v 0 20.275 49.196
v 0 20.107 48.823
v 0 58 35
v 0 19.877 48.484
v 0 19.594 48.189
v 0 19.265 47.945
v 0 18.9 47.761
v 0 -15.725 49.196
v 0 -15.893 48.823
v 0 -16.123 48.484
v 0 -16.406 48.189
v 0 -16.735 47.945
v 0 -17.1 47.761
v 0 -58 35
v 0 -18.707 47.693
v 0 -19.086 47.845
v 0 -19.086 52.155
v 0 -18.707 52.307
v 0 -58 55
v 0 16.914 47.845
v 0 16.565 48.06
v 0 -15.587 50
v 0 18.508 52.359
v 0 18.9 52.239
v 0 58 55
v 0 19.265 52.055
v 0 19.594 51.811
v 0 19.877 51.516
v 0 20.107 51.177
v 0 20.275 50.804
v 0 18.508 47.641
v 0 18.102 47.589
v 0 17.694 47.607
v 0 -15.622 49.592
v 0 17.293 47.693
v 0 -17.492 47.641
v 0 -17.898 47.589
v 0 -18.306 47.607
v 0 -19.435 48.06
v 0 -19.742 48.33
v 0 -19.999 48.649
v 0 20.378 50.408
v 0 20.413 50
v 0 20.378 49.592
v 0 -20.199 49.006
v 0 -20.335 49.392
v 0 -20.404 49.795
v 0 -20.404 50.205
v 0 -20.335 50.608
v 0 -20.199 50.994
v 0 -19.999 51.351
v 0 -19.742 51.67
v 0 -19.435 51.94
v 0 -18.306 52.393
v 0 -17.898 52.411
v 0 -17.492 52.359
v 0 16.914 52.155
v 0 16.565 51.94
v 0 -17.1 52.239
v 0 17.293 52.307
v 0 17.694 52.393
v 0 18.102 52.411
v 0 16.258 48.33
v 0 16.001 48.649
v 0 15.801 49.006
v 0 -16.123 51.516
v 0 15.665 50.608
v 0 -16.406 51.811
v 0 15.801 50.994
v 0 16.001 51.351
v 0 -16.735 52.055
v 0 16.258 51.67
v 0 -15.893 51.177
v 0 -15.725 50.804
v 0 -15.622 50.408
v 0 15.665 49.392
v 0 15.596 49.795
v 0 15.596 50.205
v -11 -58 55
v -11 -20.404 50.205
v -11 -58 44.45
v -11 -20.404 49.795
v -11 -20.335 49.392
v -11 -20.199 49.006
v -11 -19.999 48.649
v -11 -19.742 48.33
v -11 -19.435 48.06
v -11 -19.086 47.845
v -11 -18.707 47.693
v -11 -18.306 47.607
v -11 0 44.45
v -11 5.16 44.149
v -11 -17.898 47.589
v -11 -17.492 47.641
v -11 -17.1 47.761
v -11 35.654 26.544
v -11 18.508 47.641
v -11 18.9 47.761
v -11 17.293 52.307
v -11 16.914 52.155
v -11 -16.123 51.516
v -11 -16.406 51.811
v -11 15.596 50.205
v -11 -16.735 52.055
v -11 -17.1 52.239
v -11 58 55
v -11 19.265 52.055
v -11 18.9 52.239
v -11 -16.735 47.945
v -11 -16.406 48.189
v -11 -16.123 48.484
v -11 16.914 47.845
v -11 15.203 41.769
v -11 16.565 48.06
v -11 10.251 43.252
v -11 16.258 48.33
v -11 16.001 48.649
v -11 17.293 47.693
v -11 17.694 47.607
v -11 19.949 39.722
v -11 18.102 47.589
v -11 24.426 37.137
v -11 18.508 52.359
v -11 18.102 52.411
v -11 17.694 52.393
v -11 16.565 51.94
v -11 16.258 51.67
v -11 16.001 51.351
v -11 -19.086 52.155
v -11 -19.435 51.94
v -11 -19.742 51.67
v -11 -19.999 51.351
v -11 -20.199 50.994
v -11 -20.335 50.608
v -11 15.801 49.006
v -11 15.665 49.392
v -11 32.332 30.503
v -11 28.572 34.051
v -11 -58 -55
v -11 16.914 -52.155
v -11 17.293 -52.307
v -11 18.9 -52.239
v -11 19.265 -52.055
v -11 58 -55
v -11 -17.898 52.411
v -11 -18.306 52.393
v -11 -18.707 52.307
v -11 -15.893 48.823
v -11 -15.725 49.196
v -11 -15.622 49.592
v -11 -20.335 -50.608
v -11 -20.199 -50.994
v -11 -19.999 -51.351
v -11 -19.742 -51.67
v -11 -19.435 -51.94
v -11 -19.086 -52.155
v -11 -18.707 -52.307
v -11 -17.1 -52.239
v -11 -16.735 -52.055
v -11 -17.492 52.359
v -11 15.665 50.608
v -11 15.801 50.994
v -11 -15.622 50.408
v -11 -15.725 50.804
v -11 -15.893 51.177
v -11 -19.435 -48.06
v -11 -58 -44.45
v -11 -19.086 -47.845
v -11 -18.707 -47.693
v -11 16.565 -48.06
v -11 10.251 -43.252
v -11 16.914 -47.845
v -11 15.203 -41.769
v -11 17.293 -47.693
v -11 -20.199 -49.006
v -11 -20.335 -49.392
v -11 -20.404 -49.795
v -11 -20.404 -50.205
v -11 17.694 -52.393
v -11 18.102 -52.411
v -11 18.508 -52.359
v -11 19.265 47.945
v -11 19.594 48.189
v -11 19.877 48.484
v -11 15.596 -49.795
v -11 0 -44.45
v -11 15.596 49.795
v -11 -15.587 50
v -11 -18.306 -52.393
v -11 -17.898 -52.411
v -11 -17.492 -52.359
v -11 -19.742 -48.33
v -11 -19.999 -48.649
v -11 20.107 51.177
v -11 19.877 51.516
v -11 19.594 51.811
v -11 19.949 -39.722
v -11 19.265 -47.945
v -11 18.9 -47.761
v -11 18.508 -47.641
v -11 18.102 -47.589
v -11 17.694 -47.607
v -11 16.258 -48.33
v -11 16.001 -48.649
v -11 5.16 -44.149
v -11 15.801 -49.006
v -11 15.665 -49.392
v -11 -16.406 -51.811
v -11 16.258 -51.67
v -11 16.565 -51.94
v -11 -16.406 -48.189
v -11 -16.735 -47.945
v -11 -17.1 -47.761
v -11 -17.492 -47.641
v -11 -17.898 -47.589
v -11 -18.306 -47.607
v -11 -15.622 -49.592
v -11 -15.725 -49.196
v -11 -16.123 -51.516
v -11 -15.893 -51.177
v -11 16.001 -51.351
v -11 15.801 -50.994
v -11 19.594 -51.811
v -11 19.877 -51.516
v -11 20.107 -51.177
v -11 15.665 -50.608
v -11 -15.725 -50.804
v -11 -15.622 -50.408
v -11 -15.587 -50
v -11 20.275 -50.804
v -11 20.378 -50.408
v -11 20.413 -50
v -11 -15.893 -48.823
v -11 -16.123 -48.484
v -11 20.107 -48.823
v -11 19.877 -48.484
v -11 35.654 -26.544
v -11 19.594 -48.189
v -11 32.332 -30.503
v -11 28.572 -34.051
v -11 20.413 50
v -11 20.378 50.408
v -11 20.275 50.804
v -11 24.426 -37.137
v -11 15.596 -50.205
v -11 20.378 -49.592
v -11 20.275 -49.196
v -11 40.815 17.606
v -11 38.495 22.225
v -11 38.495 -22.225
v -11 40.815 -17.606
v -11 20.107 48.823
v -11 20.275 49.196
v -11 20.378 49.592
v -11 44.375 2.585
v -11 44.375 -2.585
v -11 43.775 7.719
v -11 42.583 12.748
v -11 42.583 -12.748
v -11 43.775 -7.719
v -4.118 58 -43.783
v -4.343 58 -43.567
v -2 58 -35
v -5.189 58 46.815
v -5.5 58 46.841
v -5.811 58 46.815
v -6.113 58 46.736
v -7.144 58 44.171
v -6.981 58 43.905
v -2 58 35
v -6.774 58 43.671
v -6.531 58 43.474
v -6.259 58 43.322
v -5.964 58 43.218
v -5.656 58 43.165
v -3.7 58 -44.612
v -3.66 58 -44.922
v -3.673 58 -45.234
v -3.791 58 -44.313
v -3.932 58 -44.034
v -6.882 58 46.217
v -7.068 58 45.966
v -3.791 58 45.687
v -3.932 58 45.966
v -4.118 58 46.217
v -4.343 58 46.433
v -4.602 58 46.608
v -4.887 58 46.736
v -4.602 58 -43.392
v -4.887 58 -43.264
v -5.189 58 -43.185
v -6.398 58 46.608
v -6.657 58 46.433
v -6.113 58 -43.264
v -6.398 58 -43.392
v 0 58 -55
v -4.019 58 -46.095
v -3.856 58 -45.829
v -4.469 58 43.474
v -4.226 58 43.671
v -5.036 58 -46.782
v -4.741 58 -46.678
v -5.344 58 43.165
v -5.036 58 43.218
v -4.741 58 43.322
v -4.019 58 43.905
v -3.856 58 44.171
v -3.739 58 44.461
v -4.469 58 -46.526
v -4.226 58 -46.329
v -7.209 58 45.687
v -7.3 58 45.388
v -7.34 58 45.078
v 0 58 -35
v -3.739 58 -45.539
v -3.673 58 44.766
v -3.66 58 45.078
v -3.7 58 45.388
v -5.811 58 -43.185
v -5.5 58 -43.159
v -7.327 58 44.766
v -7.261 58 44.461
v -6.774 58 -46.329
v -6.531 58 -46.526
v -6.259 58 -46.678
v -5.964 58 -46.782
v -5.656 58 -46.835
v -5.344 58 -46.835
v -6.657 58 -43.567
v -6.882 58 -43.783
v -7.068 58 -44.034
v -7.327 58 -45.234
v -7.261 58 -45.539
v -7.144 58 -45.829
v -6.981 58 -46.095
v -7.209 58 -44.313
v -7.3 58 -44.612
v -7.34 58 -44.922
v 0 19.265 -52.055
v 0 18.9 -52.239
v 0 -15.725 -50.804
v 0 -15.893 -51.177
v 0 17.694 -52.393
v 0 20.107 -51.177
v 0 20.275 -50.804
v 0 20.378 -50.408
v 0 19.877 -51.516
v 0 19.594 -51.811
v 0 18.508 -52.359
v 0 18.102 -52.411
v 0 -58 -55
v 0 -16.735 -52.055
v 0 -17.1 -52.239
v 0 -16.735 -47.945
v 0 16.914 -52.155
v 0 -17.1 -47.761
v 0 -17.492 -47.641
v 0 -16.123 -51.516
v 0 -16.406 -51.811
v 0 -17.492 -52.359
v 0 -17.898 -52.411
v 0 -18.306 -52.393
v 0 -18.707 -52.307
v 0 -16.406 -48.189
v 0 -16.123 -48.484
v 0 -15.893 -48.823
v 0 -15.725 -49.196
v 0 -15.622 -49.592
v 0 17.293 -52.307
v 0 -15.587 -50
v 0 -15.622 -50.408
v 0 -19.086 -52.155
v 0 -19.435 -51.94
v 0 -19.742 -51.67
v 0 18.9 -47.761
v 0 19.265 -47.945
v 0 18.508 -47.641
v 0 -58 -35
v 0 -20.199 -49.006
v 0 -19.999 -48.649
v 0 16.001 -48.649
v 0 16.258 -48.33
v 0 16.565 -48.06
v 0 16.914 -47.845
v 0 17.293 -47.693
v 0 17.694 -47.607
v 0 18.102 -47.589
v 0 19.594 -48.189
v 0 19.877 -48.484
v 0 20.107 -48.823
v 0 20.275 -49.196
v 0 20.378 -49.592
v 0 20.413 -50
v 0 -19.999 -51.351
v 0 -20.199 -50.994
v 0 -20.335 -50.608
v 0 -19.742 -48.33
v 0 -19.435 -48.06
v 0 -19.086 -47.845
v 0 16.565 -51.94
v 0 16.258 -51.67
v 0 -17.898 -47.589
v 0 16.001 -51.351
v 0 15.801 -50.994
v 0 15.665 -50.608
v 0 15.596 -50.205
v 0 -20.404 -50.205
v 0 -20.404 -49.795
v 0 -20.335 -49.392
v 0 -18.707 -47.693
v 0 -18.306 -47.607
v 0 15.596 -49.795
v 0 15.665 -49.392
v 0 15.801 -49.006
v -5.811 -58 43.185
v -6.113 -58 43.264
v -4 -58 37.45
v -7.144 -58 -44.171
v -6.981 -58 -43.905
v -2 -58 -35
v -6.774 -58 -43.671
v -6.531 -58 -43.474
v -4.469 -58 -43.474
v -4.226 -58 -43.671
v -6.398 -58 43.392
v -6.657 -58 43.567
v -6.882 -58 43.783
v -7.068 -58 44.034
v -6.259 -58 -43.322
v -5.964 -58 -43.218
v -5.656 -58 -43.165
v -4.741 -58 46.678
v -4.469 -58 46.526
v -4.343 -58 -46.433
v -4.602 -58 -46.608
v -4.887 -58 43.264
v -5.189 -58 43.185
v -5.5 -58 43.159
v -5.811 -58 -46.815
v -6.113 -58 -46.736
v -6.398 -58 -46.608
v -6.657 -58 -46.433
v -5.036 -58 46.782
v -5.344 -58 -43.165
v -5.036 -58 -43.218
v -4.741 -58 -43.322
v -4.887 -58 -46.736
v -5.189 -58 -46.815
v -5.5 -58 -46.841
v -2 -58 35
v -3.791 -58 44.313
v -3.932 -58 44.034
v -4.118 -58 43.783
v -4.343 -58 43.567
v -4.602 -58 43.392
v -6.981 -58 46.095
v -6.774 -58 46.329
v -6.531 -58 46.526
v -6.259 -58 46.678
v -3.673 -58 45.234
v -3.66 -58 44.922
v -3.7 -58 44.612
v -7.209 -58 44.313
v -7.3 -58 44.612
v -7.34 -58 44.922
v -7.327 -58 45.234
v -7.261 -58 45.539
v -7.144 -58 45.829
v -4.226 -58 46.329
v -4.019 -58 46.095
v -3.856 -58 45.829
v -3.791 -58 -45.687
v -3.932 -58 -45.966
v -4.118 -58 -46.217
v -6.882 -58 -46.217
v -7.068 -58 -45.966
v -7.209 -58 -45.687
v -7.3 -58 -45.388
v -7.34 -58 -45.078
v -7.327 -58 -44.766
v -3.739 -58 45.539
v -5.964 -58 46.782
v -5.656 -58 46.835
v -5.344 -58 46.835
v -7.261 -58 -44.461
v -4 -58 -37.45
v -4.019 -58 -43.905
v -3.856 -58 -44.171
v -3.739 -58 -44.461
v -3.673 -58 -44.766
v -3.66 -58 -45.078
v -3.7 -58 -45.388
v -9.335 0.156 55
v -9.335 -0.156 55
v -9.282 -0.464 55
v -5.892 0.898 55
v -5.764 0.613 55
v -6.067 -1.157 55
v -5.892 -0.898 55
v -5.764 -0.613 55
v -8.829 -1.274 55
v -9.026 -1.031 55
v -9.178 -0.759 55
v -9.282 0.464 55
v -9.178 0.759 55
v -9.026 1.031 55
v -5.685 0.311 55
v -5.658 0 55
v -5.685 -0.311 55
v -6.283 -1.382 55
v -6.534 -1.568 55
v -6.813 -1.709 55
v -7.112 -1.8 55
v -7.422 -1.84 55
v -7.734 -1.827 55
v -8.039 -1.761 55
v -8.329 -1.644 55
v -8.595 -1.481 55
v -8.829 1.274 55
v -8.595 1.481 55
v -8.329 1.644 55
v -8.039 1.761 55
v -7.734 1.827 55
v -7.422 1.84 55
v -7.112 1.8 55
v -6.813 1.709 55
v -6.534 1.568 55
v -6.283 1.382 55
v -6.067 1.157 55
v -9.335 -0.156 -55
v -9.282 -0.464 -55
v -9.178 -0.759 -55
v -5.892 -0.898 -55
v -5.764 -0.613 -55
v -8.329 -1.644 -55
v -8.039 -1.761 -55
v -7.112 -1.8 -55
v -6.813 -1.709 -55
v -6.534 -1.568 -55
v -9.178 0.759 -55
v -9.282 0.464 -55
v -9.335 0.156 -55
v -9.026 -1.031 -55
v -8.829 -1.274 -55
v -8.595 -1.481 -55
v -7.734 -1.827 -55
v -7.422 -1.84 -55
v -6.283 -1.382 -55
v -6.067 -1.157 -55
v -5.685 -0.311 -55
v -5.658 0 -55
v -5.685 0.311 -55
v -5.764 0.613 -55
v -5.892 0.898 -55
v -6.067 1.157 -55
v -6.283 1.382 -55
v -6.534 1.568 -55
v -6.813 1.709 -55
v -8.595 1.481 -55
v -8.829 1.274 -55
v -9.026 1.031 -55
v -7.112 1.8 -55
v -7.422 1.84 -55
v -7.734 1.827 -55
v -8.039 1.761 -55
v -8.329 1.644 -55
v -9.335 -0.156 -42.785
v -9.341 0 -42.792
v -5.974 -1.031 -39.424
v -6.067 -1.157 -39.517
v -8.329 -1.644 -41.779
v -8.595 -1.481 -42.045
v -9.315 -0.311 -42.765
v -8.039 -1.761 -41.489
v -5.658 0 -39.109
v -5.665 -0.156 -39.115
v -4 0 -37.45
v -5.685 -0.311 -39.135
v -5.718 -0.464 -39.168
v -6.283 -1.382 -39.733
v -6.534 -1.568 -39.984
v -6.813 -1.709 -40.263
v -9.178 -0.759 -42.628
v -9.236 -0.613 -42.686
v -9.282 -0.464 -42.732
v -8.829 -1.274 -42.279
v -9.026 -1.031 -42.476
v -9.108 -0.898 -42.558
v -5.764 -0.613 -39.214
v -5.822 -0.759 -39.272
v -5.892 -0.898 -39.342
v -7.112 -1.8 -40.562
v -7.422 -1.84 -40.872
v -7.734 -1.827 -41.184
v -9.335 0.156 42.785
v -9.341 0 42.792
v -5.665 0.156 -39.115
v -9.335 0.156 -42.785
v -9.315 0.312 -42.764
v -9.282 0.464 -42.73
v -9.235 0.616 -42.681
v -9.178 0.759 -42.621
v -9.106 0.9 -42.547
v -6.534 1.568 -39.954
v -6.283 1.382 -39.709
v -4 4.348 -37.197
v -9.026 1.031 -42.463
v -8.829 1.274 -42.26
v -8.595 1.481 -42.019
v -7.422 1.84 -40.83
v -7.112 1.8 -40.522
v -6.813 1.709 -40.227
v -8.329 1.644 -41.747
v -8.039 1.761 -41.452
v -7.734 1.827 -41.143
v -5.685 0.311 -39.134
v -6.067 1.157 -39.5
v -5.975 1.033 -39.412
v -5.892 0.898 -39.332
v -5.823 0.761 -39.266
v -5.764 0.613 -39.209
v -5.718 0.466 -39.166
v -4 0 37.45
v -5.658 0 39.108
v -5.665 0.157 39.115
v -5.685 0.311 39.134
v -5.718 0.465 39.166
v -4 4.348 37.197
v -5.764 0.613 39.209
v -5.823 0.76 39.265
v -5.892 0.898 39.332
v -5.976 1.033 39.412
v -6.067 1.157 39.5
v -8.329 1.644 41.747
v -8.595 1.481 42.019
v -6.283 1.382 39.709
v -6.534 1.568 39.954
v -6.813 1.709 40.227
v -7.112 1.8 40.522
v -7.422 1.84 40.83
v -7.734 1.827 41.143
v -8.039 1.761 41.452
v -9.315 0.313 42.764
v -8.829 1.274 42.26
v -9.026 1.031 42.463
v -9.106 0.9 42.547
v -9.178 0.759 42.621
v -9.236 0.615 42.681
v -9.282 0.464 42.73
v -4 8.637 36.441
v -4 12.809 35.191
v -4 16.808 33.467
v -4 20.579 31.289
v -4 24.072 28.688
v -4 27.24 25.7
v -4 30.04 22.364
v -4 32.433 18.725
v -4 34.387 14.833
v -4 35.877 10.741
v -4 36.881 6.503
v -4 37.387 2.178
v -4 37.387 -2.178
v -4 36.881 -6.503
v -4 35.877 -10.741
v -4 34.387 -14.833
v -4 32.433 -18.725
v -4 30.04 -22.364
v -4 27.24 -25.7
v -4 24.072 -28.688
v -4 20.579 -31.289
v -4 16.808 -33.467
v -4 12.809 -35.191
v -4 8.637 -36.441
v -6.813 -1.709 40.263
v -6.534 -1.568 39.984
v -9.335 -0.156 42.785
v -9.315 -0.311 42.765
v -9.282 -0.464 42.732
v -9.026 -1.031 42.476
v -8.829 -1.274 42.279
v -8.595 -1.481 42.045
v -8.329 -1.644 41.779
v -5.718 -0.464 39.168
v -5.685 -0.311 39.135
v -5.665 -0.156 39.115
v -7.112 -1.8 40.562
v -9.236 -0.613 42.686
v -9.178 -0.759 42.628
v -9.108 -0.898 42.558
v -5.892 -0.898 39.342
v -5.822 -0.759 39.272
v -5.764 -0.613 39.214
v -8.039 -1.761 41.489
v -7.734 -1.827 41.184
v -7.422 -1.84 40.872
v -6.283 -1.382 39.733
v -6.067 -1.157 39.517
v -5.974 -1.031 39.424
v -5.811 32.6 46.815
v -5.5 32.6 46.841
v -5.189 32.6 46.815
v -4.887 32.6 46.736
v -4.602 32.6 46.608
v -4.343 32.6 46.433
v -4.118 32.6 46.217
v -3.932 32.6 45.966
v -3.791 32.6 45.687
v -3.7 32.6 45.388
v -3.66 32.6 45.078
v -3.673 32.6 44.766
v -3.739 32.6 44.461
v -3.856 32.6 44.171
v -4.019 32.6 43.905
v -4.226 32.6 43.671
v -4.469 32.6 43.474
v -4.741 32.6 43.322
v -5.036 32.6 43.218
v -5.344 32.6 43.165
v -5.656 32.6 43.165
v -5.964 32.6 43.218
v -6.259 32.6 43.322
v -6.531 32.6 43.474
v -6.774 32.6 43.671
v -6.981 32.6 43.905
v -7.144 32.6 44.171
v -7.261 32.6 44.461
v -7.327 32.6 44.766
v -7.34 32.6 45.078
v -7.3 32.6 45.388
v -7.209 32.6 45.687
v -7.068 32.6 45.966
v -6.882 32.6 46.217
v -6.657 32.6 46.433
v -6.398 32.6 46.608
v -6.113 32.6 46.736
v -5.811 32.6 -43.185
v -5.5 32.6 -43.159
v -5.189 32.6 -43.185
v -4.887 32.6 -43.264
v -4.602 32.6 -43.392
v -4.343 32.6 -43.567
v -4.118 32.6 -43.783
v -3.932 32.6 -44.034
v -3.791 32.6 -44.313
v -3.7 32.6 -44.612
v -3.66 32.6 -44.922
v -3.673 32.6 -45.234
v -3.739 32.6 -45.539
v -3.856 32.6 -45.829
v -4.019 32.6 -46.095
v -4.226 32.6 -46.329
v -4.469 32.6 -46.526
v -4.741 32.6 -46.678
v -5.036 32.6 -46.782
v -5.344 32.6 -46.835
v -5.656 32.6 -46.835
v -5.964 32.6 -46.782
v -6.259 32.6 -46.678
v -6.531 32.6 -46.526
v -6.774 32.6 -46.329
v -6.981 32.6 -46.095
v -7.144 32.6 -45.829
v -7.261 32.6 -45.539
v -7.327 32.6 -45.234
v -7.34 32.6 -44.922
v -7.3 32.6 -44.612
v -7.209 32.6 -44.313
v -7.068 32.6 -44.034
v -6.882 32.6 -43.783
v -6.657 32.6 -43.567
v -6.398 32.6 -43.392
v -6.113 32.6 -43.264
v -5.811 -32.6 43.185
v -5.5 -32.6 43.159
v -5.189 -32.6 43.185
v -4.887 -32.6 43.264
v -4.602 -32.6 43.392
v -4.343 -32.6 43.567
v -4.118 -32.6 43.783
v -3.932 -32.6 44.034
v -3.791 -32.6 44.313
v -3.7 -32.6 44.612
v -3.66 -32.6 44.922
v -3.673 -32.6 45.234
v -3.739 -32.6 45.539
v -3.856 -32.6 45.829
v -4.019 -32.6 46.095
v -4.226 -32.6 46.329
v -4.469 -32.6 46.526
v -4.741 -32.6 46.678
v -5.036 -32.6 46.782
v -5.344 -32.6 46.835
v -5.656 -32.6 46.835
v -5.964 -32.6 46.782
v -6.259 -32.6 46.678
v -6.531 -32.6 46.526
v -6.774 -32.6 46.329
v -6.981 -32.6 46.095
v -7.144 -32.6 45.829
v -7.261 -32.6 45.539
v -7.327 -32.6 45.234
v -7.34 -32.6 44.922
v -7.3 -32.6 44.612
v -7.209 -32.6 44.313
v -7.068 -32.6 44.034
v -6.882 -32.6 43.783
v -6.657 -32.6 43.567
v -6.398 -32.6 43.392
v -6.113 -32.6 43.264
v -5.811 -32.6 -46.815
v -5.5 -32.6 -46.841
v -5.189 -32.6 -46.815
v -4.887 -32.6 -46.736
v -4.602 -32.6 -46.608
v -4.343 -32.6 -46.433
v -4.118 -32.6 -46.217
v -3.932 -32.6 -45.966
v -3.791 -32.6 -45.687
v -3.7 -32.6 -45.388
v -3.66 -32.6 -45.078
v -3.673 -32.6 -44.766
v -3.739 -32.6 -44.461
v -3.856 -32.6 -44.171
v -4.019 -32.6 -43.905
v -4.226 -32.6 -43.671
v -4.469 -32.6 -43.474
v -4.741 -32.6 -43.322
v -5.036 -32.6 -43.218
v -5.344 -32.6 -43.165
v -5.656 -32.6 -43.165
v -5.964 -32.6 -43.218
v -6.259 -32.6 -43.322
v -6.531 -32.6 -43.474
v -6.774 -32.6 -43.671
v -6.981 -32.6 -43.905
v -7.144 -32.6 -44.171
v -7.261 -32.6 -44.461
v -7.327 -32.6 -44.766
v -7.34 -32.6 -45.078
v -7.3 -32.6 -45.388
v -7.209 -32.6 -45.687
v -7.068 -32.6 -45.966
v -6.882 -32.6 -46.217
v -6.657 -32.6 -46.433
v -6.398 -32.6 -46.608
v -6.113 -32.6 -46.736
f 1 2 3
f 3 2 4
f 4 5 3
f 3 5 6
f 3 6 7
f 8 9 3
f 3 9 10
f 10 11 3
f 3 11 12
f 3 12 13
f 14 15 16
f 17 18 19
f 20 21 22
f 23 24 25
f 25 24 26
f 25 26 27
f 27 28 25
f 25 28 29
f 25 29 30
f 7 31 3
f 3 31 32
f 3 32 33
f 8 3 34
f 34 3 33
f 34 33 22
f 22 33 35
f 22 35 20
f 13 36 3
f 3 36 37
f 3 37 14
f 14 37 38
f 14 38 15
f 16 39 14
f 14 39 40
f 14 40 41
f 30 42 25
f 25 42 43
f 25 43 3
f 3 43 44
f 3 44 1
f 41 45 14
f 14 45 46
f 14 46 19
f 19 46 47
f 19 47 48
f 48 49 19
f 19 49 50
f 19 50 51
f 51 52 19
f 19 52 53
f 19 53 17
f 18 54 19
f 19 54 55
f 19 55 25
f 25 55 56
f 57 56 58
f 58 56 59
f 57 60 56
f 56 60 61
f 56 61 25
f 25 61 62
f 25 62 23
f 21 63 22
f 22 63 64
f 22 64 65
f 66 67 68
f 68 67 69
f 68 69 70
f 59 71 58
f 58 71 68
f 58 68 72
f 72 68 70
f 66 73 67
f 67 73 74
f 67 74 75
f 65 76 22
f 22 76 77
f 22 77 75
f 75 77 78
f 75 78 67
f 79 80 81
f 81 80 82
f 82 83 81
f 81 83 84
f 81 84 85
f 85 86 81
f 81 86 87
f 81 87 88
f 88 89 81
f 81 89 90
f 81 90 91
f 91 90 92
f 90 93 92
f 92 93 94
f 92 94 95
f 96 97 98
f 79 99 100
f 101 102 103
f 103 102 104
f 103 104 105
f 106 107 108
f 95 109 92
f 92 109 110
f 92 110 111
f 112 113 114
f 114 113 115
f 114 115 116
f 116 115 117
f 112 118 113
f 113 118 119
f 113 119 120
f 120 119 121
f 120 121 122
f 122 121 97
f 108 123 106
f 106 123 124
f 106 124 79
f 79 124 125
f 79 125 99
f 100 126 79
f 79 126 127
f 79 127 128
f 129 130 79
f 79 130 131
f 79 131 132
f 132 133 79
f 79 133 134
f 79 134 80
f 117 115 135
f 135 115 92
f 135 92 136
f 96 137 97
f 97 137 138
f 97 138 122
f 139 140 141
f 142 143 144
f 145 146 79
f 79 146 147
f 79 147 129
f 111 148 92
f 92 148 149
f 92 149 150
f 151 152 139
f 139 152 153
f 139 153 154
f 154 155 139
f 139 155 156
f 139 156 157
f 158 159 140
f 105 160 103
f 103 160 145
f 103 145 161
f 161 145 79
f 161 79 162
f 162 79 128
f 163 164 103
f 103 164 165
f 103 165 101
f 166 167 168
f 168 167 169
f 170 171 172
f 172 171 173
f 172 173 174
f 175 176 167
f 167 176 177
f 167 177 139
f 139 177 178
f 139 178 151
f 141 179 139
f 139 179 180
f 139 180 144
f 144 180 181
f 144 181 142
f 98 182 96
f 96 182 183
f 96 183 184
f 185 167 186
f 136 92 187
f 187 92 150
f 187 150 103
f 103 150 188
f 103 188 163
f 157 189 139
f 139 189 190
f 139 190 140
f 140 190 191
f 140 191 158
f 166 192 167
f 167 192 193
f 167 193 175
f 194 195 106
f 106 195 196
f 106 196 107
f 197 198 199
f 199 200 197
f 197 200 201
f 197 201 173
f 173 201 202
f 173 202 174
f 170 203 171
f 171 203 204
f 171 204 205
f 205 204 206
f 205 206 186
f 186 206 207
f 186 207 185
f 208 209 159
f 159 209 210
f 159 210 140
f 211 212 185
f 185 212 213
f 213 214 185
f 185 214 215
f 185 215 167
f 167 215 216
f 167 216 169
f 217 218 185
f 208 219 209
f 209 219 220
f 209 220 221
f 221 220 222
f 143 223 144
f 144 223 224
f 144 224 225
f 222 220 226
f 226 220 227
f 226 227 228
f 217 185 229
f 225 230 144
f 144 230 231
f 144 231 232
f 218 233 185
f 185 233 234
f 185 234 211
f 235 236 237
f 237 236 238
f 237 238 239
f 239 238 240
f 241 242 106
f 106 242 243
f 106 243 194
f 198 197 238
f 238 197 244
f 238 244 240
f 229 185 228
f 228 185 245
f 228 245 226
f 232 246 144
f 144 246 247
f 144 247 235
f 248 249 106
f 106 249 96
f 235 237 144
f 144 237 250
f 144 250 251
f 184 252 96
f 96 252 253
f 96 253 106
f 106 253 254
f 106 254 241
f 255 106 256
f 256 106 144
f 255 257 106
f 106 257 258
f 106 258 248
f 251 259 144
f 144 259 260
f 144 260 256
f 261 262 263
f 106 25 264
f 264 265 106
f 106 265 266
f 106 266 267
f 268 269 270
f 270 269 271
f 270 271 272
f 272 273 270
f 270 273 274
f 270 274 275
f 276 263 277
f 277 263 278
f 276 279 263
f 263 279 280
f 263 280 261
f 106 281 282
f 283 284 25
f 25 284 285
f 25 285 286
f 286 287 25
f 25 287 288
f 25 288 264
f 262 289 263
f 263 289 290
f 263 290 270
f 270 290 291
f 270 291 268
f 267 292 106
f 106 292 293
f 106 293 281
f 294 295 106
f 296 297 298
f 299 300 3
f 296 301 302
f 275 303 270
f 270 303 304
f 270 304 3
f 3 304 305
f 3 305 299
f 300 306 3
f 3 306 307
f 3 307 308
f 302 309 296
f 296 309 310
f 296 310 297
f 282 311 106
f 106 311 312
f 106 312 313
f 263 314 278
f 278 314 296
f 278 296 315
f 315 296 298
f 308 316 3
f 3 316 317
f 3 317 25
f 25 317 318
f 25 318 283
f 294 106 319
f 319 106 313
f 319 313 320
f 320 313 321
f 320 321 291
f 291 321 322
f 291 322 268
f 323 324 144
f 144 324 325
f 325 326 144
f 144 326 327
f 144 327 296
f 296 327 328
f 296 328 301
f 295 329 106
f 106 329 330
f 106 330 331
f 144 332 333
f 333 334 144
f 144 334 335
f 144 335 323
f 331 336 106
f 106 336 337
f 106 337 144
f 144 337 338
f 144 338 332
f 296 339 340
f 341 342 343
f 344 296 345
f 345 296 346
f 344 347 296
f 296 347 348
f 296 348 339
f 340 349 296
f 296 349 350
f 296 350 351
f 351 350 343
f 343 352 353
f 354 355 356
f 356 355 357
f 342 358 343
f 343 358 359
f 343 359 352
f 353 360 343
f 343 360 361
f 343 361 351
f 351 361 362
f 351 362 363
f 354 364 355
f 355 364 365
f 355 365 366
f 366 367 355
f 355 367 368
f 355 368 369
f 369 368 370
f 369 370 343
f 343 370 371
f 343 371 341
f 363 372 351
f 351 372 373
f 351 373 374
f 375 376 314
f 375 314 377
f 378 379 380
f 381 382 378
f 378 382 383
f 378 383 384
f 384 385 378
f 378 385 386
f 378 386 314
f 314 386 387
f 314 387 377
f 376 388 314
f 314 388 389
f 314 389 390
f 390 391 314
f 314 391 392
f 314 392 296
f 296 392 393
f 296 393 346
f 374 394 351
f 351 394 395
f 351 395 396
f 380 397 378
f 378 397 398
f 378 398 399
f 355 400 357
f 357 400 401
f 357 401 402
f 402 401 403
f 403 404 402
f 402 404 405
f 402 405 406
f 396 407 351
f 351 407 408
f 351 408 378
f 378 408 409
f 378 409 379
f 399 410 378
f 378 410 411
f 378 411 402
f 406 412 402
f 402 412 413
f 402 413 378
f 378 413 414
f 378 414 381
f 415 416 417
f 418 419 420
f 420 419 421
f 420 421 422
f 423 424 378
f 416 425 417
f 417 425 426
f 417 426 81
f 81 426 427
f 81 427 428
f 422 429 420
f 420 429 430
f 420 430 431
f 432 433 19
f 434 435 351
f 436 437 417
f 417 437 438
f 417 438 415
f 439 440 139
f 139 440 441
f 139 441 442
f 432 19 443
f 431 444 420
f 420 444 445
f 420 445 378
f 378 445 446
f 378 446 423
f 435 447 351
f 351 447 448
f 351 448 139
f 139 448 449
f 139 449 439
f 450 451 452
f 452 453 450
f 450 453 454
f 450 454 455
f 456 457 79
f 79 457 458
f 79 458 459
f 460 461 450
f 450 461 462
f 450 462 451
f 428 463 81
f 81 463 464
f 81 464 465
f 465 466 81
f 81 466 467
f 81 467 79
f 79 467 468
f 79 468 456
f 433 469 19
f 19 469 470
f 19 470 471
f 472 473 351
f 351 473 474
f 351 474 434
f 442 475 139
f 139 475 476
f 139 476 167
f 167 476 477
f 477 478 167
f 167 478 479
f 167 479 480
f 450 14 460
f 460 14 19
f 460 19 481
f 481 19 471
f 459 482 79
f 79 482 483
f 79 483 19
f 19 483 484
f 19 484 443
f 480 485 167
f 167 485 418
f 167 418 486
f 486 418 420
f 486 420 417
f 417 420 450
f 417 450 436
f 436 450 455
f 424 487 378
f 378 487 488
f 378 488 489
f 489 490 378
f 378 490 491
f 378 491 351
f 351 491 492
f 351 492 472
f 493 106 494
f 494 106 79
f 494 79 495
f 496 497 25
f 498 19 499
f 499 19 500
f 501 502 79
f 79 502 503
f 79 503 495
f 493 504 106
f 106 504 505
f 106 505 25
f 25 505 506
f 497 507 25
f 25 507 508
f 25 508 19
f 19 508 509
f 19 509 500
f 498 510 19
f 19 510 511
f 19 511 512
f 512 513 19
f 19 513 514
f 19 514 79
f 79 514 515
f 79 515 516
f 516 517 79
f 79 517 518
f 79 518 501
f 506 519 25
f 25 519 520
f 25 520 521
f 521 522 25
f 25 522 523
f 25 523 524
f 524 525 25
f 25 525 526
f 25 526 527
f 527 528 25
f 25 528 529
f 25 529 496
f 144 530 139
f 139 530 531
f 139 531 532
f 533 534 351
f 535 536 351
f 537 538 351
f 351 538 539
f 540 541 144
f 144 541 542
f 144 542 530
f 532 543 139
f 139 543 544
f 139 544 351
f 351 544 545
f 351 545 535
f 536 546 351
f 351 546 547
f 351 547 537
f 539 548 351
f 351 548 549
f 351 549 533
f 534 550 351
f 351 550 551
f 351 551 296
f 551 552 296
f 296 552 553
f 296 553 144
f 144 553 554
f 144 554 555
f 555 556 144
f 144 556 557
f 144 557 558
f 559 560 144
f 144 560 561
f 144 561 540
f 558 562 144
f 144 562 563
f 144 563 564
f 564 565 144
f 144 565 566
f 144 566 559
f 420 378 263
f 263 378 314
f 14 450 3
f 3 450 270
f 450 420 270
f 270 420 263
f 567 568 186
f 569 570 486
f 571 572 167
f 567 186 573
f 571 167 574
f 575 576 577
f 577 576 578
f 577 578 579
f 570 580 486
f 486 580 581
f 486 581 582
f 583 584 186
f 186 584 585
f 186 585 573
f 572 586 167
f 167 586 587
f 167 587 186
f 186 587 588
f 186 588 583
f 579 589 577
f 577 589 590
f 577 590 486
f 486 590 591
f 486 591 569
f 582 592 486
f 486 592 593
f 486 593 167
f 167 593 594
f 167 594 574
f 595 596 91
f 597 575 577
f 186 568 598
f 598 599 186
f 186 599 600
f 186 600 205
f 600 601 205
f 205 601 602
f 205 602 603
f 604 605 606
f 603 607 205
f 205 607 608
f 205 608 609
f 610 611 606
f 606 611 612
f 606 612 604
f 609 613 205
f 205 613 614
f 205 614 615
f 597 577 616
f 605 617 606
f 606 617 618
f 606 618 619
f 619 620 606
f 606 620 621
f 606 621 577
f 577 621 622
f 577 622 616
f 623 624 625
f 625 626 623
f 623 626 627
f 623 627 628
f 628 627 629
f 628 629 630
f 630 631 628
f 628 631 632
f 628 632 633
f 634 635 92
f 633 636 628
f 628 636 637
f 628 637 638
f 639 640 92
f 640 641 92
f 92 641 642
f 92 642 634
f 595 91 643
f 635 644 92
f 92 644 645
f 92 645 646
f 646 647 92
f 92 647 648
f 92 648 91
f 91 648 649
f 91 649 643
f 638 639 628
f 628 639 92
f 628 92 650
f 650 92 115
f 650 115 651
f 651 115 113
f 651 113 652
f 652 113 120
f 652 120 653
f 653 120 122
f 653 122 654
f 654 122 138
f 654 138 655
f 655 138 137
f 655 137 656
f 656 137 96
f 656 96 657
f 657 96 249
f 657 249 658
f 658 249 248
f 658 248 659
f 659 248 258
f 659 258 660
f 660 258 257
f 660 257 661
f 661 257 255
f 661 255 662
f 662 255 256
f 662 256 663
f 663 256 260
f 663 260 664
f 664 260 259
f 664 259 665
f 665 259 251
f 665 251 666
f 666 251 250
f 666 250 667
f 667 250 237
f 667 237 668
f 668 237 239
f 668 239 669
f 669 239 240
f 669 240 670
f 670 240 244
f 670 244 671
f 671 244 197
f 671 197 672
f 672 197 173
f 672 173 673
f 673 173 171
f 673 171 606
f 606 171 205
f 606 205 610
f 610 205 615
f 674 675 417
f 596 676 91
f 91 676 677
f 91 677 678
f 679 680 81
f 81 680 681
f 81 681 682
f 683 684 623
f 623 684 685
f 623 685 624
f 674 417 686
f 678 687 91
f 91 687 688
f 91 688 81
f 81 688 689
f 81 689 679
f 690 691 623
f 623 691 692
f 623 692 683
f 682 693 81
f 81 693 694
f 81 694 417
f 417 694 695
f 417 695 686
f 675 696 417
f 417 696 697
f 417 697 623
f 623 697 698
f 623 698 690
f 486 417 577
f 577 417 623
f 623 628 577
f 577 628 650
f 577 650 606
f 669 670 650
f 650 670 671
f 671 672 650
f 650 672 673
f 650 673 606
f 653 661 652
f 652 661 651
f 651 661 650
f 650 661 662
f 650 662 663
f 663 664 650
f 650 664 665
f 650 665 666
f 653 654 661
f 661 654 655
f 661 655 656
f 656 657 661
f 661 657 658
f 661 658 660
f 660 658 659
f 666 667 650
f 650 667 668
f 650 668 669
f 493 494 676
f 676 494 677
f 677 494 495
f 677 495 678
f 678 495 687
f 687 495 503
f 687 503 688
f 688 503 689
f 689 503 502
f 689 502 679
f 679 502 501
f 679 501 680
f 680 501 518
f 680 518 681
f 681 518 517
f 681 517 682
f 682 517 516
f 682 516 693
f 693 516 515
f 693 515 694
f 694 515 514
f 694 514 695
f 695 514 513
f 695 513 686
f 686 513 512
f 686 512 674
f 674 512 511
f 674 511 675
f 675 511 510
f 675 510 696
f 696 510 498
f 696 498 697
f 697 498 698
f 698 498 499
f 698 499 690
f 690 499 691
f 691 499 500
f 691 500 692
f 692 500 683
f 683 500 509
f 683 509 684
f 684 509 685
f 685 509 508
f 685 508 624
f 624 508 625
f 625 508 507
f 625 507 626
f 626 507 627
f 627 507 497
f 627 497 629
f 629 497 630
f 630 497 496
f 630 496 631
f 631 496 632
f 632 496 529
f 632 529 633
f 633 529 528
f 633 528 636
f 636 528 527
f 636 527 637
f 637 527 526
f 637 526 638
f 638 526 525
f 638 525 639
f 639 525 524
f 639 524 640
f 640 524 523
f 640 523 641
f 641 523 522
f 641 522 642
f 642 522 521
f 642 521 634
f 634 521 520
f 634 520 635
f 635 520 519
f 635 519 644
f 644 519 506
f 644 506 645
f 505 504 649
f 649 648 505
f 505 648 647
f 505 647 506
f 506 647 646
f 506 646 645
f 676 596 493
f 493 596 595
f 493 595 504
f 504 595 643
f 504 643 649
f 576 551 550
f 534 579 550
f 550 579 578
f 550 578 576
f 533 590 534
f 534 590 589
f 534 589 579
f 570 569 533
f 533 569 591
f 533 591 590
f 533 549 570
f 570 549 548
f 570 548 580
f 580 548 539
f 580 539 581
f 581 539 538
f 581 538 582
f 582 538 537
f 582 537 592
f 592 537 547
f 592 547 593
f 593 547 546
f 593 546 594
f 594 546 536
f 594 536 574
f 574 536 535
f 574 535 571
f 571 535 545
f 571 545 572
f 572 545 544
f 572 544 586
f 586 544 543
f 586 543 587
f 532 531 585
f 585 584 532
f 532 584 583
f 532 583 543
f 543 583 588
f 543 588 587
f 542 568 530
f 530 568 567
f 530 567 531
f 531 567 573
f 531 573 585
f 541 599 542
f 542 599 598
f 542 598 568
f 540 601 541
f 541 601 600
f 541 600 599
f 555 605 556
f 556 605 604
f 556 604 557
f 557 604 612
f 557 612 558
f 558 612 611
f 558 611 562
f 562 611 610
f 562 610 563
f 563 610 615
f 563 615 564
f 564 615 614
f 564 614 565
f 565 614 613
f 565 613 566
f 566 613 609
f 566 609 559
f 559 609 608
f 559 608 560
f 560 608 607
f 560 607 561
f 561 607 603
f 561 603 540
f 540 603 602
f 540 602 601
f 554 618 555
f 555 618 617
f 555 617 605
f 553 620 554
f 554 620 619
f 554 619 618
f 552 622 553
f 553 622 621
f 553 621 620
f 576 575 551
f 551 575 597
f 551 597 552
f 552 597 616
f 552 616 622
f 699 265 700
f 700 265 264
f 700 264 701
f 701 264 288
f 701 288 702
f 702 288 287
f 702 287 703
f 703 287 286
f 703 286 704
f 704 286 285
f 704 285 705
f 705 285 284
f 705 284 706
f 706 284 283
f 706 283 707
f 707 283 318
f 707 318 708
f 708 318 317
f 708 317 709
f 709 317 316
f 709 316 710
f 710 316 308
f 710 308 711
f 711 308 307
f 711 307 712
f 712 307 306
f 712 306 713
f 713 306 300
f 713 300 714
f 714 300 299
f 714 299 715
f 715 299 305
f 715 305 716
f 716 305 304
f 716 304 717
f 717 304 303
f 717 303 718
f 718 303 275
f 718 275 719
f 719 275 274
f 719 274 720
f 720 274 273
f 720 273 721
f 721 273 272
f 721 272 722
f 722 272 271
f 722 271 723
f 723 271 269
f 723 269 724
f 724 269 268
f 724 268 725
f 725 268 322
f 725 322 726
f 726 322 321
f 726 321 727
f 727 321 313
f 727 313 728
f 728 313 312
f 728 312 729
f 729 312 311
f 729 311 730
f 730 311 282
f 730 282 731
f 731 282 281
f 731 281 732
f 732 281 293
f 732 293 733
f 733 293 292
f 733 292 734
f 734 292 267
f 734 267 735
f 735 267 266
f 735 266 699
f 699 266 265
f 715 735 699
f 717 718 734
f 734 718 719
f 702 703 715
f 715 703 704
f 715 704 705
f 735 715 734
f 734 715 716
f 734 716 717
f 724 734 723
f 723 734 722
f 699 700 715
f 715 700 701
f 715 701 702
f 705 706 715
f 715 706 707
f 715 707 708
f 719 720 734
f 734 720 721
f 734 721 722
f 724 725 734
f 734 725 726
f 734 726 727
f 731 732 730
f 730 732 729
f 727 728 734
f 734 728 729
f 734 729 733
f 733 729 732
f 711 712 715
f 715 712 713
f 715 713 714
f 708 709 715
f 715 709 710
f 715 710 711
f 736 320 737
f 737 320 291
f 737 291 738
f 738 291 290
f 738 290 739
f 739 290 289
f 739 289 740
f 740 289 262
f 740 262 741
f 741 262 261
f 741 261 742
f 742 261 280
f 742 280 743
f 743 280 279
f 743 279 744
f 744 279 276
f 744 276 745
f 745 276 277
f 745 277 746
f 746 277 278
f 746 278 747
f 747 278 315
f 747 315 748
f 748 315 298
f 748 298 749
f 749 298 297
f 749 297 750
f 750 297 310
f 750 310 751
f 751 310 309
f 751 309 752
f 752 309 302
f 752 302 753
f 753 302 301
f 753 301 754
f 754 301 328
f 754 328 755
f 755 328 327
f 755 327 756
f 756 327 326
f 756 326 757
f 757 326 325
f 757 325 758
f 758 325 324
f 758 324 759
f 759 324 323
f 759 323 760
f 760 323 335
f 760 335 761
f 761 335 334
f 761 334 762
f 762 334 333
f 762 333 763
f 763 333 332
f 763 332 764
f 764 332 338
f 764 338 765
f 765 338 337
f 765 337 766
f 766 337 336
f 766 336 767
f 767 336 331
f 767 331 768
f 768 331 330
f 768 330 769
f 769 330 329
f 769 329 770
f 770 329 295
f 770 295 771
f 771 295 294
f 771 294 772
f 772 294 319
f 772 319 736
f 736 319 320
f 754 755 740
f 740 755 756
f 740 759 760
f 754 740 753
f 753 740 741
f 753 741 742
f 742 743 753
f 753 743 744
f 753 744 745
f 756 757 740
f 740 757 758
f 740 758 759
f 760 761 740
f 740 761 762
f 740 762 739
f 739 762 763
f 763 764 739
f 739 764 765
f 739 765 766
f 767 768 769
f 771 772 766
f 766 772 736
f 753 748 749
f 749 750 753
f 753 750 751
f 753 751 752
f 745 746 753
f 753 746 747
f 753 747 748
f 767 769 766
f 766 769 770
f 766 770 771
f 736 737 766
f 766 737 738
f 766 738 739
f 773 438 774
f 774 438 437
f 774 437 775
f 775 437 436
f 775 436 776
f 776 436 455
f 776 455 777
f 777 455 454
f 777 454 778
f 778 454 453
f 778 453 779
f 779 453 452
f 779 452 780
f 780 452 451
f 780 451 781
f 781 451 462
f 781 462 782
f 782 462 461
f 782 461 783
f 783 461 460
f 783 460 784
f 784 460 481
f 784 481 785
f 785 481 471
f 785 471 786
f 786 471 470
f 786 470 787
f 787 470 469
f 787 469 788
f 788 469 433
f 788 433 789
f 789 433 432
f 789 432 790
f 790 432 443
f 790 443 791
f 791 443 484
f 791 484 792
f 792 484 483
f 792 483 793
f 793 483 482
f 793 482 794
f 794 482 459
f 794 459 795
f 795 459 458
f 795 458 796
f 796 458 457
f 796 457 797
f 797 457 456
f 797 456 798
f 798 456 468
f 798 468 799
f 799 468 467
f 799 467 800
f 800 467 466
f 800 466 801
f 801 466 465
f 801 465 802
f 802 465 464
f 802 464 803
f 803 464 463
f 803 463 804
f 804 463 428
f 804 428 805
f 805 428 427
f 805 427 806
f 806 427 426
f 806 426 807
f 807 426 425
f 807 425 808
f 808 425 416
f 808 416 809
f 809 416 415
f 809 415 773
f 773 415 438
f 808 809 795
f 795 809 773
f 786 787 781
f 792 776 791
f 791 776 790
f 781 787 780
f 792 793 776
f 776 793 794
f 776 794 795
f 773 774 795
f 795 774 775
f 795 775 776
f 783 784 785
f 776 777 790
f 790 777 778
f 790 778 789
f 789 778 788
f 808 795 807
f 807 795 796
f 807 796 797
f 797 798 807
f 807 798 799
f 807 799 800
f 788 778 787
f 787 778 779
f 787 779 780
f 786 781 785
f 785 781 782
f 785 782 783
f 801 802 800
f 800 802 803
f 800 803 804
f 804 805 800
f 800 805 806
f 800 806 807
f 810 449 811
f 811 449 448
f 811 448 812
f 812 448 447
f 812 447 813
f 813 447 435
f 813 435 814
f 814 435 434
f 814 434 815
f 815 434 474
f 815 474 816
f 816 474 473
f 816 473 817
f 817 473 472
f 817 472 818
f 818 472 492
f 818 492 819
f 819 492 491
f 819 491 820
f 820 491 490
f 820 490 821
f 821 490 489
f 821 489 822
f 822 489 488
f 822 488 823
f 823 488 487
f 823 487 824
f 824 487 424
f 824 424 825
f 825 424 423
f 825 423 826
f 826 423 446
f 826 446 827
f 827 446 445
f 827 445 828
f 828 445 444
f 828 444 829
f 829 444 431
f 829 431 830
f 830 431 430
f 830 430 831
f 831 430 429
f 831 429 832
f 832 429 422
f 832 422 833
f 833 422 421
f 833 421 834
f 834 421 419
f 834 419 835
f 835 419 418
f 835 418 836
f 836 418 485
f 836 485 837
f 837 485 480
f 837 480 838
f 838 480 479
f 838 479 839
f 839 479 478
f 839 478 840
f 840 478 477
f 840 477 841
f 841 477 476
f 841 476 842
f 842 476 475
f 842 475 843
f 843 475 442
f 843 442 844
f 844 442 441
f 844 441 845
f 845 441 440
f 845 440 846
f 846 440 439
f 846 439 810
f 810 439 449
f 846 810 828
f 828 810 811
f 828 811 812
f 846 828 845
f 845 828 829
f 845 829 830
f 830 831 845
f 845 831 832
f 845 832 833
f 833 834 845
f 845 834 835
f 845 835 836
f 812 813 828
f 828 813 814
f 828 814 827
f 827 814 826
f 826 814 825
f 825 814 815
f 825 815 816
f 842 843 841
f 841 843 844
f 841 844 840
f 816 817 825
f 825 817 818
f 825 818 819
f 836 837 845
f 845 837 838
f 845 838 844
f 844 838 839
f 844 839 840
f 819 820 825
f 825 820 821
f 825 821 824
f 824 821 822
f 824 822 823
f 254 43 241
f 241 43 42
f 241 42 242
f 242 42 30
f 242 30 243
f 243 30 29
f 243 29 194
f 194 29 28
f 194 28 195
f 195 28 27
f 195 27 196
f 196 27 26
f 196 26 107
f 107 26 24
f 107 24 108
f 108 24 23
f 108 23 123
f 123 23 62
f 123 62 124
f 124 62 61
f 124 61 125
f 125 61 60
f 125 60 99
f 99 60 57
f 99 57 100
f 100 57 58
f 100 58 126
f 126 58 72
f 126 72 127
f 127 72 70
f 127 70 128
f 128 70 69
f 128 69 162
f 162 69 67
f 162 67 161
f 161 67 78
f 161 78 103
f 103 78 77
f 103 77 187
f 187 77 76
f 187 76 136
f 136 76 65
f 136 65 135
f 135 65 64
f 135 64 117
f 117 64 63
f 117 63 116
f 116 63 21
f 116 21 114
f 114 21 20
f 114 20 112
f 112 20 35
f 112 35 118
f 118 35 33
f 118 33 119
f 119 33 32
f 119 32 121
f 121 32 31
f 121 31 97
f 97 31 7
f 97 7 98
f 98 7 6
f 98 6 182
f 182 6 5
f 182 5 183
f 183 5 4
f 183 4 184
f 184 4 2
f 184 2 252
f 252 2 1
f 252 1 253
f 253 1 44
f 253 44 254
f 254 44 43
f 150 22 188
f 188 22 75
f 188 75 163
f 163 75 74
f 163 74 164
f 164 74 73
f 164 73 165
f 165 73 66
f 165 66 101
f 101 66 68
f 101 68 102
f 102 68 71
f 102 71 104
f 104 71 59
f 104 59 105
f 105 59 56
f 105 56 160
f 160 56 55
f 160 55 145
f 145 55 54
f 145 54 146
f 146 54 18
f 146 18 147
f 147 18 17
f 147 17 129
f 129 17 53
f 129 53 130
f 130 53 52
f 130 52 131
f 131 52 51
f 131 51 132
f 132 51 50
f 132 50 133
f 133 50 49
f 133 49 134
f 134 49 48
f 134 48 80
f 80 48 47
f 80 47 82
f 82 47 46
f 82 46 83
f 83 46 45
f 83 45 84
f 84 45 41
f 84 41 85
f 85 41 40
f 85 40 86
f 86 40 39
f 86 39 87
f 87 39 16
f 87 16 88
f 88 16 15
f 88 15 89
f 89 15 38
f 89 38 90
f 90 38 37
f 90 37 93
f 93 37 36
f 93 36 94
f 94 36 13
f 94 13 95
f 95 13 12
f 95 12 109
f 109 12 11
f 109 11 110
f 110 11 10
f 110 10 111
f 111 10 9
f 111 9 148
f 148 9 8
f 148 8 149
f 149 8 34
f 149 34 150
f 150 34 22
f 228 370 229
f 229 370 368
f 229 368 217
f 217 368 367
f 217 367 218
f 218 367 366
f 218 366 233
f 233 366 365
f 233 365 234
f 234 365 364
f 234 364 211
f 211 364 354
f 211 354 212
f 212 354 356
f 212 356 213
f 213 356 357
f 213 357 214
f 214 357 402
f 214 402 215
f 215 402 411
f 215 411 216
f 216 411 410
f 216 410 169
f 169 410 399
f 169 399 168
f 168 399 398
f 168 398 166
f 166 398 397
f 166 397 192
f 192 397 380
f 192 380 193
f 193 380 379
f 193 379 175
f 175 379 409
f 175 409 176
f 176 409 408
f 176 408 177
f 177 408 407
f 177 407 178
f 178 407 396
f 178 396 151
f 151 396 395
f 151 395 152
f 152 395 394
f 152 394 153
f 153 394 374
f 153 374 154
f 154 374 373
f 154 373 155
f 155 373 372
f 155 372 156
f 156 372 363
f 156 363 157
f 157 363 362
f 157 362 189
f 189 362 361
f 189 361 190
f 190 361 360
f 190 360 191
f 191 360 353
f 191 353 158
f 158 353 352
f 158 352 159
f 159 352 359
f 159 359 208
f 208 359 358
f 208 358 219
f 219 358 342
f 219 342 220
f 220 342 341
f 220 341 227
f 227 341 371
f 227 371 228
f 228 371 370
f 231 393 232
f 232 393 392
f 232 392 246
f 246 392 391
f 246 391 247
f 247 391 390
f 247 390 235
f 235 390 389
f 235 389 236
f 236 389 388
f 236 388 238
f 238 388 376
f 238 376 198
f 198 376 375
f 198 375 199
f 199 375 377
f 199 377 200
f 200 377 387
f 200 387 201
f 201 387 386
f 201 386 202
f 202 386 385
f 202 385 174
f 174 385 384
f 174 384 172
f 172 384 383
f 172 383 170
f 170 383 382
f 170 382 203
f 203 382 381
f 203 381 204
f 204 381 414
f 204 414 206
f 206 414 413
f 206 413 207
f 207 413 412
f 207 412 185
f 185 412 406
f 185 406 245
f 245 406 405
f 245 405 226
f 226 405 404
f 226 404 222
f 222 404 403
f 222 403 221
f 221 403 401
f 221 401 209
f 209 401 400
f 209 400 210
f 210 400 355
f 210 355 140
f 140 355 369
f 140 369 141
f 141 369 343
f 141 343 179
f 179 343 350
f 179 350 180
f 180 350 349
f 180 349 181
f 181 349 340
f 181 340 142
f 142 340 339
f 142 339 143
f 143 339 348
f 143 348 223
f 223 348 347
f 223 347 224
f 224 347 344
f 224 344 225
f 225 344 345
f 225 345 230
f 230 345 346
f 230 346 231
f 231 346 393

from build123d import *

# Parameters (mm, degrees)
SKETCH2_W              = 11
SKETCH2_H              = 116
BOSS_EXTRUDE2_DEPTH    = 109.999999964
SKETCH3_W              = 2
SKETCH3_H              = 70
CUT_EXTRUDE1_DEPTH     = 129.848748531
CUT_EXTRUDE2_DEPTH     = 7
CUT_EXTRUDE2_DRAFT     = -45
CUT_EXTRUDE3_START     = -109.999999964
CUT_EXTRUDE3_OUTLINE_R = 1.8415
CUT_EXTRUDE3_DEPTH     = 109.999999964
SKETCH7_R              = 1.8415
CUT_EXTRUDE4_DEPTH     = 25.4
CUT_EXTRUDE5_START     = -25.4
SKETCH8_R              = 1.8415
CUT_EXTRUDE5_DEPTH     = 25.4
SKETCH9_R              = 2.413
CUT_EXTRUDE6_DEPTH     = 81.684571085


# Read off the part's stored shape, not the designer's step: Cut-Extrude3
with BuildPart() as part:
    # Sketch2 → Boss-Extrude2 (new body)
    with BuildSketch(Plane.XY.offset(54.999999982)):
        with Locations((-5.5, 0)):
            Rectangle(SKETCH2_W, SKETCH2_H)
    extrude(amount=-BOSS_EXTRUDE2_DEPTH)

    # Sketch3 → Cut-Extrude1 (cut, through all)
    with BuildSketch(Plane(origin=(0, 58, 0), x_dir=(1, 0, 0), z_dir=(0, 1, 0))):
        with Locations((-1, 1.8e-08)):
            Rectangle(SKETCH3_W, SKETCH3_H)
    extrude(amount=-CUT_EXTRUDE1_DEPTH, mode=Mode.SUBTRACT)


with BuildPart() as cut_extrude2_tool:
    # Sketch5 → Cut-Extrude2 (with draft: the straight prism first)
    with BuildSketch(Plane.ZY.offset(11)):
        with BuildLine():
            Line((-44.45, 0), (-44.45, -77.05))
            Line((-44.45, -77.05), (44.45, -77.05))
            Line((44.45, -77.05), (44.45, 0))
            ThreePointArc((44.45, 0), (0, 44.45), (-44.45, 0))
        make_face()
    extrude(amount=-CUT_EXTRUDE2_DEPTH)
    # Cut-Extrude2: the draft: its side faces are tilted about the plane it starts from
    cut_extrude2_sides = [cut_extrude2_tool.faces().sort_by_distance(p)[0] for p in [
        (-7.5, -38.525, -44.45),
        (-7.5, -77.05, 0),
        (-7.5, -38.525, 44.45),
        (-7.5, 44.45, 0),
    ]]
    draft(cut_extrude2_sides, Plane.ZY.offset(11), CUT_EXTRUDE2_DRAFT)


with BuildPart() as part_1:
    add(part.part)

    # Cut-Extrude2: cut by cut_extrude2_tool
    add(cut_extrude2_tool.part, mode=Mode.SUBTRACT)

    # Cut-Extrude3 outline → Cut-Extrude3 (cut)
    with BuildSketch(Plane.XY.offset(54.999999982).offset(CUT_EXTRUDE3_START)):
        with Locations((-7.5, 0)):
            Circle(CUT_EXTRUDE3_OUTLINE_R)
    extrude(amount=CUT_EXTRUDE3_DEPTH, mode=Mode.SUBTRACT)

    # Sketch7 → Cut-Extrude4 (cut)
    with BuildSketch(Plane(origin=(0, 58, 0), x_dir=(1, 0, 0), z_dir=(0, 1, 0))):
        with Locations(Location((-5.5, -44.999999982, 0), (0, 0, 270))):
            Circle(SKETCH7_R)
        with Locations(Location((-5.5, 44.999999982, 0), (0, 0, 270))):
            Circle(SKETCH7_R)
    extrude(amount=-CUT_EXTRUDE4_DEPTH, mode=Mode.SUBTRACT)

    # Sketch8 → Cut-Extrude5 (cut)
    with BuildSketch(Plane.XZ.offset(58).offset(CUT_EXTRUDE5_START)):
        with Locations(Location((-5.5, 44.999999982, 0), (0, 0, 90))):
            Circle(SKETCH8_R)
        with Locations(Location((-5.5, -44.999999982, 0), (0, 0, 90))):
            Circle(SKETCH8_R)
    extrude(amount=CUT_EXTRUDE5_DEPTH, mode=Mode.SUBTRACT)

    # Sketch9 → Cut-Extrude6 (cut, through all)
    with BuildSketch(Plane(origin=(0, 0, 0), x_dir=(0, 0, -1), z_dir=(1, 0, 0))):
        with Locations(Location((-49.999999982, 18, 0), (0, 0, 90))):
            Circle(SKETCH9_R)
        with Locations(Location((-49.999999982, -18, 0), (0, 0, 90))):
            Circle(SKETCH9_R)
        with Locations(Location((49.999999982, -18, 0), (0, 0, 90))):
            Circle(SKETCH9_R)
        with Locations(Location((49.999999982, 18, 0), (0, 0, 90))):
            Circle(SKETCH9_R)
    extrude(amount=-CUT_EXTRUDE6_DEPTH, mode=Mode.SUBTRACT)


solid = part_1.part
